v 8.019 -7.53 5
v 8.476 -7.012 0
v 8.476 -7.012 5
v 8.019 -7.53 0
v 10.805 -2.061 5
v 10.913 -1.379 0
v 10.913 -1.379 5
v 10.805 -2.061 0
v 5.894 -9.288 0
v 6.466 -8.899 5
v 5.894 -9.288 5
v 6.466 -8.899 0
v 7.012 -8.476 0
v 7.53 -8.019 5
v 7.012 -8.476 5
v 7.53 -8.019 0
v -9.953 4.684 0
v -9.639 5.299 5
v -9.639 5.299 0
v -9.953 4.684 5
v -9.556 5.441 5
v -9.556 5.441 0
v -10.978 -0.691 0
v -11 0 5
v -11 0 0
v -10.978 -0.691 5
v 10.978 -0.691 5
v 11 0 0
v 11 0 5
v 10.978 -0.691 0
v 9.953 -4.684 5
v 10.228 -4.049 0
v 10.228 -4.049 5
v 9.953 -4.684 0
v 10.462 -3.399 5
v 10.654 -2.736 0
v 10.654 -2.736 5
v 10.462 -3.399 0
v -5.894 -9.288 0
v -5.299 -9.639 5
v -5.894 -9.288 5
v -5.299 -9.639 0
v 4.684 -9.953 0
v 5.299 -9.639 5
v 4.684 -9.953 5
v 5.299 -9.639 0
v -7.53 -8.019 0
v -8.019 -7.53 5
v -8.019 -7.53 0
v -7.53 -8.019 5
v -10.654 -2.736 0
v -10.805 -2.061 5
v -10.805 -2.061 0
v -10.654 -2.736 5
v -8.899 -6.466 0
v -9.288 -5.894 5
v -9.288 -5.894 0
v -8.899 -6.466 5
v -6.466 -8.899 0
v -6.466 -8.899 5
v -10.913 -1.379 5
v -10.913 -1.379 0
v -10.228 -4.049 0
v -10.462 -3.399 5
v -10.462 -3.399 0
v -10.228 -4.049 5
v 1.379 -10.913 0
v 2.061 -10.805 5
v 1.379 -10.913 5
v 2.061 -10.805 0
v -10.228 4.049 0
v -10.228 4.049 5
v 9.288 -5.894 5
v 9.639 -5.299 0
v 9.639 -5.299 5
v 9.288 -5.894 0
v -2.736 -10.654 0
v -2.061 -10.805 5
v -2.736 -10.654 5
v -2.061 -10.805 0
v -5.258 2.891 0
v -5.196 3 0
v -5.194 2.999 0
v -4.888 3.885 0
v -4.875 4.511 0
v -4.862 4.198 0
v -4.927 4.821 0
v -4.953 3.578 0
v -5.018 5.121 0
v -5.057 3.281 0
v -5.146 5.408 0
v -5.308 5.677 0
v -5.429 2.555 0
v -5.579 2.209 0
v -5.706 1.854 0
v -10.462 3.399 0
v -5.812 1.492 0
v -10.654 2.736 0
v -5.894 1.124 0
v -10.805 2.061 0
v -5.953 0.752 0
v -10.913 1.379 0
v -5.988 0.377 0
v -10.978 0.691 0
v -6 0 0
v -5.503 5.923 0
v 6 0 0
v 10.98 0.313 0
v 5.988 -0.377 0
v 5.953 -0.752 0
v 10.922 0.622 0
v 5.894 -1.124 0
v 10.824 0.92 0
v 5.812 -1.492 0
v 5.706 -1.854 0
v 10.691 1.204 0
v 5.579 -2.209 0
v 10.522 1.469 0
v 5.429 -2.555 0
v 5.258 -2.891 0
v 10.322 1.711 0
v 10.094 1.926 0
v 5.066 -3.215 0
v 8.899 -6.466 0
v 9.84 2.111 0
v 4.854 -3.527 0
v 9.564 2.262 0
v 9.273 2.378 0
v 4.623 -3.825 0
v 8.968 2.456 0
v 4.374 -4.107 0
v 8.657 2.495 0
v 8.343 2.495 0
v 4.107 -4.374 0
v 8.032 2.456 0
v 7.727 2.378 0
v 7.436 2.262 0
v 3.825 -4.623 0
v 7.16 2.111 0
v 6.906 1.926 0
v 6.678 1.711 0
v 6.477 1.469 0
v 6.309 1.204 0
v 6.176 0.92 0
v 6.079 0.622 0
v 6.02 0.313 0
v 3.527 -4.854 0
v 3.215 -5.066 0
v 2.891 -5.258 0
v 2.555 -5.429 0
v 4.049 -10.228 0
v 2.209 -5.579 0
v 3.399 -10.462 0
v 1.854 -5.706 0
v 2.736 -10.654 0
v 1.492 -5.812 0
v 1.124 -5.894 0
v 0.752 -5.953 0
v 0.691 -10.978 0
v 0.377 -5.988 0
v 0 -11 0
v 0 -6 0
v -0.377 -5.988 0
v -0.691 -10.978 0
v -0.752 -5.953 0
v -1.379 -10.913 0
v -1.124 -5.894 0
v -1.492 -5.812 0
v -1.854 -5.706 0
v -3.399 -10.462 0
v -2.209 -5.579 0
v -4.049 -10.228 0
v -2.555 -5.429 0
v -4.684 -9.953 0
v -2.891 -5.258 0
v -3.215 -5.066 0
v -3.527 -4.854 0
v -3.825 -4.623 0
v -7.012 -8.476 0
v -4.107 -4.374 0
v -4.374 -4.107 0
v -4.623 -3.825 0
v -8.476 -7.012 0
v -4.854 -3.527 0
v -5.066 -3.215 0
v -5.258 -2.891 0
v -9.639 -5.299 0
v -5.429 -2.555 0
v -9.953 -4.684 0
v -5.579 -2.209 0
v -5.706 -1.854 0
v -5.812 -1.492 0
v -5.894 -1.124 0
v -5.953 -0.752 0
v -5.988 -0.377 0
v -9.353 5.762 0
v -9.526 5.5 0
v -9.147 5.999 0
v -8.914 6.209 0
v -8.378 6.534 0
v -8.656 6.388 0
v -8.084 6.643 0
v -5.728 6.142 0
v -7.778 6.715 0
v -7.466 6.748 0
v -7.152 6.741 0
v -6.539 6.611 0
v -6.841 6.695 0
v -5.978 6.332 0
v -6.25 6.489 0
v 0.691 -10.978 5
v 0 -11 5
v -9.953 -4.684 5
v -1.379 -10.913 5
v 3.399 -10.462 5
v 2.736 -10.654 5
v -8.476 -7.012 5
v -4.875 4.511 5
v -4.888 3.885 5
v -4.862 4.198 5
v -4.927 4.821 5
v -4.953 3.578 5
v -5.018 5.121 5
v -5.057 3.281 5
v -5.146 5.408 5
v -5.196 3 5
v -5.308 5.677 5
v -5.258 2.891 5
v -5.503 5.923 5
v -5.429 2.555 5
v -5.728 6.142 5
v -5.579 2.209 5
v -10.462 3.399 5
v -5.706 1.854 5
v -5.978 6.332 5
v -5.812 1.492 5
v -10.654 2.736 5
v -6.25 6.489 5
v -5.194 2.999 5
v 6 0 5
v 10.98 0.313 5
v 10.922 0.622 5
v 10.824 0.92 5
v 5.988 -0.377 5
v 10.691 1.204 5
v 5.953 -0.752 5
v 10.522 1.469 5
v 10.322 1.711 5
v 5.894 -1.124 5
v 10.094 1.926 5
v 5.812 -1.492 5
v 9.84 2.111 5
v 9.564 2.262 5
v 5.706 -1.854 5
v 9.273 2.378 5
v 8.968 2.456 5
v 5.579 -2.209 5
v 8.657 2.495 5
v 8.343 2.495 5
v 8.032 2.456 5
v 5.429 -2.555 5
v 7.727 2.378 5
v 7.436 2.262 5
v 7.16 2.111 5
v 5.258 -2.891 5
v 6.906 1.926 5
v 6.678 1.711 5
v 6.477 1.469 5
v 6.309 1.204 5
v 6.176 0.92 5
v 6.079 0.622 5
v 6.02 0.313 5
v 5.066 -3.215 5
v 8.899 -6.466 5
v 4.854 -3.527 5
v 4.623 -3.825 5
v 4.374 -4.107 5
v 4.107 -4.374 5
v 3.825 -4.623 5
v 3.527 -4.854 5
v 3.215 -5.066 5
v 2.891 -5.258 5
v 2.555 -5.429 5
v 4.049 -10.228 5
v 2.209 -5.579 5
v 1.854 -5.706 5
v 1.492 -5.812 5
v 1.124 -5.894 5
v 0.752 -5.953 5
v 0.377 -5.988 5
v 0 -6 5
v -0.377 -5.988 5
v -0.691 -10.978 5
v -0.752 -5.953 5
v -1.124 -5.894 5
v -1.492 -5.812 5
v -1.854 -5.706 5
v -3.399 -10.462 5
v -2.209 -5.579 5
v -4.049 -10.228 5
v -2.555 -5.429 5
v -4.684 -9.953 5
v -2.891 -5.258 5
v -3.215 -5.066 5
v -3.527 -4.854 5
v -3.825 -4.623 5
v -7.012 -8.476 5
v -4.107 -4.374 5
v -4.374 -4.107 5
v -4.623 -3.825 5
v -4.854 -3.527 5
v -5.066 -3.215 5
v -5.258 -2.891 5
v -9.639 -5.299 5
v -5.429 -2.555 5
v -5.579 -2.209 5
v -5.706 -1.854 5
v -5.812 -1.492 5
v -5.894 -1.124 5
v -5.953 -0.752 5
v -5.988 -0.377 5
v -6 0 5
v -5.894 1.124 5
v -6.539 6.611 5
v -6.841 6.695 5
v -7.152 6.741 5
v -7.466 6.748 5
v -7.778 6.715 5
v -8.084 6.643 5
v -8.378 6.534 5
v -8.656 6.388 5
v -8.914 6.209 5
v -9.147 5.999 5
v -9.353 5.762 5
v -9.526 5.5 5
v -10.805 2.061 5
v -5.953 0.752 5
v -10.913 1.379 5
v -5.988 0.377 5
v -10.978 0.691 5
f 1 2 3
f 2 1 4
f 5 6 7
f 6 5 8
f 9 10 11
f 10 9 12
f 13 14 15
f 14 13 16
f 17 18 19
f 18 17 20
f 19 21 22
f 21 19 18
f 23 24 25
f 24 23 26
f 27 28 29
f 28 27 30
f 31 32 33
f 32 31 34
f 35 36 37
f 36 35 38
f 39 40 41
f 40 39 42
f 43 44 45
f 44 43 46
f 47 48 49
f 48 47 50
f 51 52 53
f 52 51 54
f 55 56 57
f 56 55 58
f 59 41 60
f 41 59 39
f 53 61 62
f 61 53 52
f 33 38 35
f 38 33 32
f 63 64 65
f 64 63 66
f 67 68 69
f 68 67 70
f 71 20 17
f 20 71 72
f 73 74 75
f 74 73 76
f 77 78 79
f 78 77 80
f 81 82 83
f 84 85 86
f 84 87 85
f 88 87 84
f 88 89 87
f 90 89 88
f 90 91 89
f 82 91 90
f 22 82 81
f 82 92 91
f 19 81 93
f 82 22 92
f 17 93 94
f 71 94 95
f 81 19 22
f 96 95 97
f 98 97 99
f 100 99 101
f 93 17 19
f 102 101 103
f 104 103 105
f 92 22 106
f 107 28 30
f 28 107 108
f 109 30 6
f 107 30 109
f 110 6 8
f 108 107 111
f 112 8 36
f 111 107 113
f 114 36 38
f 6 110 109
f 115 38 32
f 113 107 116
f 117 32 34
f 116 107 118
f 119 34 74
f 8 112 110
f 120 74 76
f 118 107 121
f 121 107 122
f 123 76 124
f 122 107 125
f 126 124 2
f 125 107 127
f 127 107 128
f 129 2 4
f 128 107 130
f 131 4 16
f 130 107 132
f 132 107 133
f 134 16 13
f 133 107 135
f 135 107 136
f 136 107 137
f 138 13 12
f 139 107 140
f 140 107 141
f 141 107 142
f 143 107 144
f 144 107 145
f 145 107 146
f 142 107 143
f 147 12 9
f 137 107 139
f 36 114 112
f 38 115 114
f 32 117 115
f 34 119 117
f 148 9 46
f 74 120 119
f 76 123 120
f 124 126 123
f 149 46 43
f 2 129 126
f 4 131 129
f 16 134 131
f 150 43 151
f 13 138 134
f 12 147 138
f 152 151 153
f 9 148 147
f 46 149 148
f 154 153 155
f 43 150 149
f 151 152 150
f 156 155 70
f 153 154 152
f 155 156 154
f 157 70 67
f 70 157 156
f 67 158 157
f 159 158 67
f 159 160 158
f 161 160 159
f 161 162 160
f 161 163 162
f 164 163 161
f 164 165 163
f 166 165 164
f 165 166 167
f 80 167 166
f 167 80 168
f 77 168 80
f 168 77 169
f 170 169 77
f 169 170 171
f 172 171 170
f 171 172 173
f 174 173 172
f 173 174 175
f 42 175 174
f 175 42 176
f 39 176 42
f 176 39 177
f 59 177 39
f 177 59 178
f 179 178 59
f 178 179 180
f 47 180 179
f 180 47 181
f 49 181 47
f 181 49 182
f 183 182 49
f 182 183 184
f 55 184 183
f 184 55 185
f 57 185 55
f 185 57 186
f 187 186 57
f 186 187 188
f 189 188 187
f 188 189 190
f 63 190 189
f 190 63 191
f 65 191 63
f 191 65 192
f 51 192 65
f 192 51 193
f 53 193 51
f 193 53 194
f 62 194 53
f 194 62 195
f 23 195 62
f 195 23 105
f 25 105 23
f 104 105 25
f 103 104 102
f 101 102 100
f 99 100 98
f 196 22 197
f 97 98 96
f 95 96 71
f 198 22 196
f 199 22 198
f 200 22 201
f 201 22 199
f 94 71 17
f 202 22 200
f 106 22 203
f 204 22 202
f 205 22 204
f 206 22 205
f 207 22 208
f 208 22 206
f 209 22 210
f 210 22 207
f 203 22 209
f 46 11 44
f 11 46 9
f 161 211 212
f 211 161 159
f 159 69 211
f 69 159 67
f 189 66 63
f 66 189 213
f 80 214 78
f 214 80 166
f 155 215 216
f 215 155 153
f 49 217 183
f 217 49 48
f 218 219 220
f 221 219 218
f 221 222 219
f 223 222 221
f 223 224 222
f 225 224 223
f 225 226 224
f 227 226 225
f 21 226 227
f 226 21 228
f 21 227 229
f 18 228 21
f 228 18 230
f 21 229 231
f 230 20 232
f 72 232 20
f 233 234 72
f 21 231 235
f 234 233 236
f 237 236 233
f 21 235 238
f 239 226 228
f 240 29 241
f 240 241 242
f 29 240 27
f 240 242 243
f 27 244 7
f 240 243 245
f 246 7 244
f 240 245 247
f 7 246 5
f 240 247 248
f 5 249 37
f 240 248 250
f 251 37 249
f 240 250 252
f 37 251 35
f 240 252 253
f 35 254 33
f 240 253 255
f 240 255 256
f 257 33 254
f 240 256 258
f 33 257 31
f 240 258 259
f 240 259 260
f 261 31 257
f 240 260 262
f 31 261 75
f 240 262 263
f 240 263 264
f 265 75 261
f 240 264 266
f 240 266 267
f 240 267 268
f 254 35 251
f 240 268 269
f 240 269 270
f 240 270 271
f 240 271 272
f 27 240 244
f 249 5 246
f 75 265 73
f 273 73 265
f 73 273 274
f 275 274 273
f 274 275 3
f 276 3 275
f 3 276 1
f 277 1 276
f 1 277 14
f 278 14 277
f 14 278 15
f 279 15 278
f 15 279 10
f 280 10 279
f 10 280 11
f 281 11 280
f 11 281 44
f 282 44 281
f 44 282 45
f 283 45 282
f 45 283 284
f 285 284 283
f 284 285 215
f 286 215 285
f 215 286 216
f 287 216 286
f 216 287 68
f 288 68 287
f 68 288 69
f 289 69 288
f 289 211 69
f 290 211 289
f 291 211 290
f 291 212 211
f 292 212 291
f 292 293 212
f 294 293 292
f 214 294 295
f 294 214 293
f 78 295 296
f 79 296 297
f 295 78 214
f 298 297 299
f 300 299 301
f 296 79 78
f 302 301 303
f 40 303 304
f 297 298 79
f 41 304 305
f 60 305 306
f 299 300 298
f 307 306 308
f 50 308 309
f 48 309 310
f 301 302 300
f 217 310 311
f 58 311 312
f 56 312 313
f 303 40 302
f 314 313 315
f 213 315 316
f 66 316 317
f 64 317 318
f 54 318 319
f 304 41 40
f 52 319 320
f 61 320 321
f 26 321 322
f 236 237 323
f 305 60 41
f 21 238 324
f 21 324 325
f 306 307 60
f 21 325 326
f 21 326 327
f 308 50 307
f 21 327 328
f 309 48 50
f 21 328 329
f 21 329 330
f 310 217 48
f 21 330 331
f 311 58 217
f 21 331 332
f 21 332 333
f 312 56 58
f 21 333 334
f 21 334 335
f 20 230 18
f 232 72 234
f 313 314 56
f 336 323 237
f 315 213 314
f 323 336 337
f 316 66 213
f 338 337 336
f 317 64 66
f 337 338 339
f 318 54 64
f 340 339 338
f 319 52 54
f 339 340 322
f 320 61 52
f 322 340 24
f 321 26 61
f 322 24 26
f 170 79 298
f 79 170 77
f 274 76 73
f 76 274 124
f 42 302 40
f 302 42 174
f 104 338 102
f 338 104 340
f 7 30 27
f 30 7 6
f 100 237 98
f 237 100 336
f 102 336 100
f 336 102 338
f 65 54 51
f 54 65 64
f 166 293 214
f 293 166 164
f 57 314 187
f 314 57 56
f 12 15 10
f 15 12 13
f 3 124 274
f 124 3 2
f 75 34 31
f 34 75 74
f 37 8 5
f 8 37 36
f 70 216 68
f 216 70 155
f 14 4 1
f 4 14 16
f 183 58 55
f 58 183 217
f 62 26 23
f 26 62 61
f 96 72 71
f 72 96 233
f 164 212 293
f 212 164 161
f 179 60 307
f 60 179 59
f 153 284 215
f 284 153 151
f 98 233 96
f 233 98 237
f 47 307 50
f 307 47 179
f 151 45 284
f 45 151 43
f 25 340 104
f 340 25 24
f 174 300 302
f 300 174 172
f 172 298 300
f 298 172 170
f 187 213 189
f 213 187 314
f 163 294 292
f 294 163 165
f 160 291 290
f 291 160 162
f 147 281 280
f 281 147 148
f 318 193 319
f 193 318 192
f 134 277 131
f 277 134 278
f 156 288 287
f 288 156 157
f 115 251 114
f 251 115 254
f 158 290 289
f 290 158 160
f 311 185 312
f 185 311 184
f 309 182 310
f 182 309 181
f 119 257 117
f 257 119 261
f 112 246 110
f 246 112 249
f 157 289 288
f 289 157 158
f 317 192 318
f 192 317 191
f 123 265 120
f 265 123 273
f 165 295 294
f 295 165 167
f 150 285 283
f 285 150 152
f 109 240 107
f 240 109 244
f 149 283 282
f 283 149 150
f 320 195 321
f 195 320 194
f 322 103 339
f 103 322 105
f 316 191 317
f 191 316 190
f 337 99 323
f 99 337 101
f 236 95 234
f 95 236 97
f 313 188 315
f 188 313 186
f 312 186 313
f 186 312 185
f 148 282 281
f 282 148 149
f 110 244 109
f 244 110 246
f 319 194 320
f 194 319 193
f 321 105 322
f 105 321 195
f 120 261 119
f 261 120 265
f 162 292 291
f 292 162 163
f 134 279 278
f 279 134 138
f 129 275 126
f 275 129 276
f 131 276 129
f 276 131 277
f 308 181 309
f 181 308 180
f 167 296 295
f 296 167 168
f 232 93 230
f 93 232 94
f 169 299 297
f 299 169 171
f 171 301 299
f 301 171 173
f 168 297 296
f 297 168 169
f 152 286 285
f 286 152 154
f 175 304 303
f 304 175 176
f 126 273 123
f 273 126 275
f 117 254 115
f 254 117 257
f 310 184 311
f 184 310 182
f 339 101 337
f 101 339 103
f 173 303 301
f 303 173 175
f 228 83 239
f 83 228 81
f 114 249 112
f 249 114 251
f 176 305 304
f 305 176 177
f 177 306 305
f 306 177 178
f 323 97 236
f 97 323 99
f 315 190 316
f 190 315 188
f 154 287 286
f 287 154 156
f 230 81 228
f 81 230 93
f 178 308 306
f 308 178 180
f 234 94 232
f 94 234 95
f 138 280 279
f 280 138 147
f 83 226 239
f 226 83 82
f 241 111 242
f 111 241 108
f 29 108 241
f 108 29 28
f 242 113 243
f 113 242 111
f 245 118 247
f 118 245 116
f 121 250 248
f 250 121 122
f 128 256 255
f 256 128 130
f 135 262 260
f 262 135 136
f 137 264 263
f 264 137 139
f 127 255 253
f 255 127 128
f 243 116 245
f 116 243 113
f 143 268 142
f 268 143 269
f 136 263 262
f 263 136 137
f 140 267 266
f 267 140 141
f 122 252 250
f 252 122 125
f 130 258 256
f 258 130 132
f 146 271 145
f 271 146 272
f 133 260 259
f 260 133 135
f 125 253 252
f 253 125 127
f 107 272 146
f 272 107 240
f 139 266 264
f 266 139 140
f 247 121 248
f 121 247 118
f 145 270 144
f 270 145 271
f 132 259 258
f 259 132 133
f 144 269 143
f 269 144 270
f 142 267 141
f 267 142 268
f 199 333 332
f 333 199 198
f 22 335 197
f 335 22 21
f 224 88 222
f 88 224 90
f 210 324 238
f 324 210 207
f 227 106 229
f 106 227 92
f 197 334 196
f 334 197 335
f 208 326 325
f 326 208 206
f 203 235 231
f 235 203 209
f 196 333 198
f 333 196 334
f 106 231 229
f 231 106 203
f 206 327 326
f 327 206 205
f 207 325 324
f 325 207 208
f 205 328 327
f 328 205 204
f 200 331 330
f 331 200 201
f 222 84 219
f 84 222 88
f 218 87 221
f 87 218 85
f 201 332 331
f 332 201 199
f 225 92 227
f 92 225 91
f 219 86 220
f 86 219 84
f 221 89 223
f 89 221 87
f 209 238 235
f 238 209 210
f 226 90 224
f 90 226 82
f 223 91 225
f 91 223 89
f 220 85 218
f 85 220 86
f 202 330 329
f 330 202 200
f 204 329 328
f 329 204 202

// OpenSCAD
union(){
    difference(){
        cylinder(d=22,h=5,$fn=100);
        translate([0,0,-1])cylinder(d=12,h=7,$fn=100);
        translate([0,0,-1])cube([15,15,7]);
        translate([0,0,-1])rotate([0,0,60])cube([15,15,7]);
    }
    translate([8.5,0,0])cylinder(d=5,h=5,$fn=50);
    rotate([0,0,150])translate([8.5,0,0])cylinder(d=5,h=5,$fn=50);
}
